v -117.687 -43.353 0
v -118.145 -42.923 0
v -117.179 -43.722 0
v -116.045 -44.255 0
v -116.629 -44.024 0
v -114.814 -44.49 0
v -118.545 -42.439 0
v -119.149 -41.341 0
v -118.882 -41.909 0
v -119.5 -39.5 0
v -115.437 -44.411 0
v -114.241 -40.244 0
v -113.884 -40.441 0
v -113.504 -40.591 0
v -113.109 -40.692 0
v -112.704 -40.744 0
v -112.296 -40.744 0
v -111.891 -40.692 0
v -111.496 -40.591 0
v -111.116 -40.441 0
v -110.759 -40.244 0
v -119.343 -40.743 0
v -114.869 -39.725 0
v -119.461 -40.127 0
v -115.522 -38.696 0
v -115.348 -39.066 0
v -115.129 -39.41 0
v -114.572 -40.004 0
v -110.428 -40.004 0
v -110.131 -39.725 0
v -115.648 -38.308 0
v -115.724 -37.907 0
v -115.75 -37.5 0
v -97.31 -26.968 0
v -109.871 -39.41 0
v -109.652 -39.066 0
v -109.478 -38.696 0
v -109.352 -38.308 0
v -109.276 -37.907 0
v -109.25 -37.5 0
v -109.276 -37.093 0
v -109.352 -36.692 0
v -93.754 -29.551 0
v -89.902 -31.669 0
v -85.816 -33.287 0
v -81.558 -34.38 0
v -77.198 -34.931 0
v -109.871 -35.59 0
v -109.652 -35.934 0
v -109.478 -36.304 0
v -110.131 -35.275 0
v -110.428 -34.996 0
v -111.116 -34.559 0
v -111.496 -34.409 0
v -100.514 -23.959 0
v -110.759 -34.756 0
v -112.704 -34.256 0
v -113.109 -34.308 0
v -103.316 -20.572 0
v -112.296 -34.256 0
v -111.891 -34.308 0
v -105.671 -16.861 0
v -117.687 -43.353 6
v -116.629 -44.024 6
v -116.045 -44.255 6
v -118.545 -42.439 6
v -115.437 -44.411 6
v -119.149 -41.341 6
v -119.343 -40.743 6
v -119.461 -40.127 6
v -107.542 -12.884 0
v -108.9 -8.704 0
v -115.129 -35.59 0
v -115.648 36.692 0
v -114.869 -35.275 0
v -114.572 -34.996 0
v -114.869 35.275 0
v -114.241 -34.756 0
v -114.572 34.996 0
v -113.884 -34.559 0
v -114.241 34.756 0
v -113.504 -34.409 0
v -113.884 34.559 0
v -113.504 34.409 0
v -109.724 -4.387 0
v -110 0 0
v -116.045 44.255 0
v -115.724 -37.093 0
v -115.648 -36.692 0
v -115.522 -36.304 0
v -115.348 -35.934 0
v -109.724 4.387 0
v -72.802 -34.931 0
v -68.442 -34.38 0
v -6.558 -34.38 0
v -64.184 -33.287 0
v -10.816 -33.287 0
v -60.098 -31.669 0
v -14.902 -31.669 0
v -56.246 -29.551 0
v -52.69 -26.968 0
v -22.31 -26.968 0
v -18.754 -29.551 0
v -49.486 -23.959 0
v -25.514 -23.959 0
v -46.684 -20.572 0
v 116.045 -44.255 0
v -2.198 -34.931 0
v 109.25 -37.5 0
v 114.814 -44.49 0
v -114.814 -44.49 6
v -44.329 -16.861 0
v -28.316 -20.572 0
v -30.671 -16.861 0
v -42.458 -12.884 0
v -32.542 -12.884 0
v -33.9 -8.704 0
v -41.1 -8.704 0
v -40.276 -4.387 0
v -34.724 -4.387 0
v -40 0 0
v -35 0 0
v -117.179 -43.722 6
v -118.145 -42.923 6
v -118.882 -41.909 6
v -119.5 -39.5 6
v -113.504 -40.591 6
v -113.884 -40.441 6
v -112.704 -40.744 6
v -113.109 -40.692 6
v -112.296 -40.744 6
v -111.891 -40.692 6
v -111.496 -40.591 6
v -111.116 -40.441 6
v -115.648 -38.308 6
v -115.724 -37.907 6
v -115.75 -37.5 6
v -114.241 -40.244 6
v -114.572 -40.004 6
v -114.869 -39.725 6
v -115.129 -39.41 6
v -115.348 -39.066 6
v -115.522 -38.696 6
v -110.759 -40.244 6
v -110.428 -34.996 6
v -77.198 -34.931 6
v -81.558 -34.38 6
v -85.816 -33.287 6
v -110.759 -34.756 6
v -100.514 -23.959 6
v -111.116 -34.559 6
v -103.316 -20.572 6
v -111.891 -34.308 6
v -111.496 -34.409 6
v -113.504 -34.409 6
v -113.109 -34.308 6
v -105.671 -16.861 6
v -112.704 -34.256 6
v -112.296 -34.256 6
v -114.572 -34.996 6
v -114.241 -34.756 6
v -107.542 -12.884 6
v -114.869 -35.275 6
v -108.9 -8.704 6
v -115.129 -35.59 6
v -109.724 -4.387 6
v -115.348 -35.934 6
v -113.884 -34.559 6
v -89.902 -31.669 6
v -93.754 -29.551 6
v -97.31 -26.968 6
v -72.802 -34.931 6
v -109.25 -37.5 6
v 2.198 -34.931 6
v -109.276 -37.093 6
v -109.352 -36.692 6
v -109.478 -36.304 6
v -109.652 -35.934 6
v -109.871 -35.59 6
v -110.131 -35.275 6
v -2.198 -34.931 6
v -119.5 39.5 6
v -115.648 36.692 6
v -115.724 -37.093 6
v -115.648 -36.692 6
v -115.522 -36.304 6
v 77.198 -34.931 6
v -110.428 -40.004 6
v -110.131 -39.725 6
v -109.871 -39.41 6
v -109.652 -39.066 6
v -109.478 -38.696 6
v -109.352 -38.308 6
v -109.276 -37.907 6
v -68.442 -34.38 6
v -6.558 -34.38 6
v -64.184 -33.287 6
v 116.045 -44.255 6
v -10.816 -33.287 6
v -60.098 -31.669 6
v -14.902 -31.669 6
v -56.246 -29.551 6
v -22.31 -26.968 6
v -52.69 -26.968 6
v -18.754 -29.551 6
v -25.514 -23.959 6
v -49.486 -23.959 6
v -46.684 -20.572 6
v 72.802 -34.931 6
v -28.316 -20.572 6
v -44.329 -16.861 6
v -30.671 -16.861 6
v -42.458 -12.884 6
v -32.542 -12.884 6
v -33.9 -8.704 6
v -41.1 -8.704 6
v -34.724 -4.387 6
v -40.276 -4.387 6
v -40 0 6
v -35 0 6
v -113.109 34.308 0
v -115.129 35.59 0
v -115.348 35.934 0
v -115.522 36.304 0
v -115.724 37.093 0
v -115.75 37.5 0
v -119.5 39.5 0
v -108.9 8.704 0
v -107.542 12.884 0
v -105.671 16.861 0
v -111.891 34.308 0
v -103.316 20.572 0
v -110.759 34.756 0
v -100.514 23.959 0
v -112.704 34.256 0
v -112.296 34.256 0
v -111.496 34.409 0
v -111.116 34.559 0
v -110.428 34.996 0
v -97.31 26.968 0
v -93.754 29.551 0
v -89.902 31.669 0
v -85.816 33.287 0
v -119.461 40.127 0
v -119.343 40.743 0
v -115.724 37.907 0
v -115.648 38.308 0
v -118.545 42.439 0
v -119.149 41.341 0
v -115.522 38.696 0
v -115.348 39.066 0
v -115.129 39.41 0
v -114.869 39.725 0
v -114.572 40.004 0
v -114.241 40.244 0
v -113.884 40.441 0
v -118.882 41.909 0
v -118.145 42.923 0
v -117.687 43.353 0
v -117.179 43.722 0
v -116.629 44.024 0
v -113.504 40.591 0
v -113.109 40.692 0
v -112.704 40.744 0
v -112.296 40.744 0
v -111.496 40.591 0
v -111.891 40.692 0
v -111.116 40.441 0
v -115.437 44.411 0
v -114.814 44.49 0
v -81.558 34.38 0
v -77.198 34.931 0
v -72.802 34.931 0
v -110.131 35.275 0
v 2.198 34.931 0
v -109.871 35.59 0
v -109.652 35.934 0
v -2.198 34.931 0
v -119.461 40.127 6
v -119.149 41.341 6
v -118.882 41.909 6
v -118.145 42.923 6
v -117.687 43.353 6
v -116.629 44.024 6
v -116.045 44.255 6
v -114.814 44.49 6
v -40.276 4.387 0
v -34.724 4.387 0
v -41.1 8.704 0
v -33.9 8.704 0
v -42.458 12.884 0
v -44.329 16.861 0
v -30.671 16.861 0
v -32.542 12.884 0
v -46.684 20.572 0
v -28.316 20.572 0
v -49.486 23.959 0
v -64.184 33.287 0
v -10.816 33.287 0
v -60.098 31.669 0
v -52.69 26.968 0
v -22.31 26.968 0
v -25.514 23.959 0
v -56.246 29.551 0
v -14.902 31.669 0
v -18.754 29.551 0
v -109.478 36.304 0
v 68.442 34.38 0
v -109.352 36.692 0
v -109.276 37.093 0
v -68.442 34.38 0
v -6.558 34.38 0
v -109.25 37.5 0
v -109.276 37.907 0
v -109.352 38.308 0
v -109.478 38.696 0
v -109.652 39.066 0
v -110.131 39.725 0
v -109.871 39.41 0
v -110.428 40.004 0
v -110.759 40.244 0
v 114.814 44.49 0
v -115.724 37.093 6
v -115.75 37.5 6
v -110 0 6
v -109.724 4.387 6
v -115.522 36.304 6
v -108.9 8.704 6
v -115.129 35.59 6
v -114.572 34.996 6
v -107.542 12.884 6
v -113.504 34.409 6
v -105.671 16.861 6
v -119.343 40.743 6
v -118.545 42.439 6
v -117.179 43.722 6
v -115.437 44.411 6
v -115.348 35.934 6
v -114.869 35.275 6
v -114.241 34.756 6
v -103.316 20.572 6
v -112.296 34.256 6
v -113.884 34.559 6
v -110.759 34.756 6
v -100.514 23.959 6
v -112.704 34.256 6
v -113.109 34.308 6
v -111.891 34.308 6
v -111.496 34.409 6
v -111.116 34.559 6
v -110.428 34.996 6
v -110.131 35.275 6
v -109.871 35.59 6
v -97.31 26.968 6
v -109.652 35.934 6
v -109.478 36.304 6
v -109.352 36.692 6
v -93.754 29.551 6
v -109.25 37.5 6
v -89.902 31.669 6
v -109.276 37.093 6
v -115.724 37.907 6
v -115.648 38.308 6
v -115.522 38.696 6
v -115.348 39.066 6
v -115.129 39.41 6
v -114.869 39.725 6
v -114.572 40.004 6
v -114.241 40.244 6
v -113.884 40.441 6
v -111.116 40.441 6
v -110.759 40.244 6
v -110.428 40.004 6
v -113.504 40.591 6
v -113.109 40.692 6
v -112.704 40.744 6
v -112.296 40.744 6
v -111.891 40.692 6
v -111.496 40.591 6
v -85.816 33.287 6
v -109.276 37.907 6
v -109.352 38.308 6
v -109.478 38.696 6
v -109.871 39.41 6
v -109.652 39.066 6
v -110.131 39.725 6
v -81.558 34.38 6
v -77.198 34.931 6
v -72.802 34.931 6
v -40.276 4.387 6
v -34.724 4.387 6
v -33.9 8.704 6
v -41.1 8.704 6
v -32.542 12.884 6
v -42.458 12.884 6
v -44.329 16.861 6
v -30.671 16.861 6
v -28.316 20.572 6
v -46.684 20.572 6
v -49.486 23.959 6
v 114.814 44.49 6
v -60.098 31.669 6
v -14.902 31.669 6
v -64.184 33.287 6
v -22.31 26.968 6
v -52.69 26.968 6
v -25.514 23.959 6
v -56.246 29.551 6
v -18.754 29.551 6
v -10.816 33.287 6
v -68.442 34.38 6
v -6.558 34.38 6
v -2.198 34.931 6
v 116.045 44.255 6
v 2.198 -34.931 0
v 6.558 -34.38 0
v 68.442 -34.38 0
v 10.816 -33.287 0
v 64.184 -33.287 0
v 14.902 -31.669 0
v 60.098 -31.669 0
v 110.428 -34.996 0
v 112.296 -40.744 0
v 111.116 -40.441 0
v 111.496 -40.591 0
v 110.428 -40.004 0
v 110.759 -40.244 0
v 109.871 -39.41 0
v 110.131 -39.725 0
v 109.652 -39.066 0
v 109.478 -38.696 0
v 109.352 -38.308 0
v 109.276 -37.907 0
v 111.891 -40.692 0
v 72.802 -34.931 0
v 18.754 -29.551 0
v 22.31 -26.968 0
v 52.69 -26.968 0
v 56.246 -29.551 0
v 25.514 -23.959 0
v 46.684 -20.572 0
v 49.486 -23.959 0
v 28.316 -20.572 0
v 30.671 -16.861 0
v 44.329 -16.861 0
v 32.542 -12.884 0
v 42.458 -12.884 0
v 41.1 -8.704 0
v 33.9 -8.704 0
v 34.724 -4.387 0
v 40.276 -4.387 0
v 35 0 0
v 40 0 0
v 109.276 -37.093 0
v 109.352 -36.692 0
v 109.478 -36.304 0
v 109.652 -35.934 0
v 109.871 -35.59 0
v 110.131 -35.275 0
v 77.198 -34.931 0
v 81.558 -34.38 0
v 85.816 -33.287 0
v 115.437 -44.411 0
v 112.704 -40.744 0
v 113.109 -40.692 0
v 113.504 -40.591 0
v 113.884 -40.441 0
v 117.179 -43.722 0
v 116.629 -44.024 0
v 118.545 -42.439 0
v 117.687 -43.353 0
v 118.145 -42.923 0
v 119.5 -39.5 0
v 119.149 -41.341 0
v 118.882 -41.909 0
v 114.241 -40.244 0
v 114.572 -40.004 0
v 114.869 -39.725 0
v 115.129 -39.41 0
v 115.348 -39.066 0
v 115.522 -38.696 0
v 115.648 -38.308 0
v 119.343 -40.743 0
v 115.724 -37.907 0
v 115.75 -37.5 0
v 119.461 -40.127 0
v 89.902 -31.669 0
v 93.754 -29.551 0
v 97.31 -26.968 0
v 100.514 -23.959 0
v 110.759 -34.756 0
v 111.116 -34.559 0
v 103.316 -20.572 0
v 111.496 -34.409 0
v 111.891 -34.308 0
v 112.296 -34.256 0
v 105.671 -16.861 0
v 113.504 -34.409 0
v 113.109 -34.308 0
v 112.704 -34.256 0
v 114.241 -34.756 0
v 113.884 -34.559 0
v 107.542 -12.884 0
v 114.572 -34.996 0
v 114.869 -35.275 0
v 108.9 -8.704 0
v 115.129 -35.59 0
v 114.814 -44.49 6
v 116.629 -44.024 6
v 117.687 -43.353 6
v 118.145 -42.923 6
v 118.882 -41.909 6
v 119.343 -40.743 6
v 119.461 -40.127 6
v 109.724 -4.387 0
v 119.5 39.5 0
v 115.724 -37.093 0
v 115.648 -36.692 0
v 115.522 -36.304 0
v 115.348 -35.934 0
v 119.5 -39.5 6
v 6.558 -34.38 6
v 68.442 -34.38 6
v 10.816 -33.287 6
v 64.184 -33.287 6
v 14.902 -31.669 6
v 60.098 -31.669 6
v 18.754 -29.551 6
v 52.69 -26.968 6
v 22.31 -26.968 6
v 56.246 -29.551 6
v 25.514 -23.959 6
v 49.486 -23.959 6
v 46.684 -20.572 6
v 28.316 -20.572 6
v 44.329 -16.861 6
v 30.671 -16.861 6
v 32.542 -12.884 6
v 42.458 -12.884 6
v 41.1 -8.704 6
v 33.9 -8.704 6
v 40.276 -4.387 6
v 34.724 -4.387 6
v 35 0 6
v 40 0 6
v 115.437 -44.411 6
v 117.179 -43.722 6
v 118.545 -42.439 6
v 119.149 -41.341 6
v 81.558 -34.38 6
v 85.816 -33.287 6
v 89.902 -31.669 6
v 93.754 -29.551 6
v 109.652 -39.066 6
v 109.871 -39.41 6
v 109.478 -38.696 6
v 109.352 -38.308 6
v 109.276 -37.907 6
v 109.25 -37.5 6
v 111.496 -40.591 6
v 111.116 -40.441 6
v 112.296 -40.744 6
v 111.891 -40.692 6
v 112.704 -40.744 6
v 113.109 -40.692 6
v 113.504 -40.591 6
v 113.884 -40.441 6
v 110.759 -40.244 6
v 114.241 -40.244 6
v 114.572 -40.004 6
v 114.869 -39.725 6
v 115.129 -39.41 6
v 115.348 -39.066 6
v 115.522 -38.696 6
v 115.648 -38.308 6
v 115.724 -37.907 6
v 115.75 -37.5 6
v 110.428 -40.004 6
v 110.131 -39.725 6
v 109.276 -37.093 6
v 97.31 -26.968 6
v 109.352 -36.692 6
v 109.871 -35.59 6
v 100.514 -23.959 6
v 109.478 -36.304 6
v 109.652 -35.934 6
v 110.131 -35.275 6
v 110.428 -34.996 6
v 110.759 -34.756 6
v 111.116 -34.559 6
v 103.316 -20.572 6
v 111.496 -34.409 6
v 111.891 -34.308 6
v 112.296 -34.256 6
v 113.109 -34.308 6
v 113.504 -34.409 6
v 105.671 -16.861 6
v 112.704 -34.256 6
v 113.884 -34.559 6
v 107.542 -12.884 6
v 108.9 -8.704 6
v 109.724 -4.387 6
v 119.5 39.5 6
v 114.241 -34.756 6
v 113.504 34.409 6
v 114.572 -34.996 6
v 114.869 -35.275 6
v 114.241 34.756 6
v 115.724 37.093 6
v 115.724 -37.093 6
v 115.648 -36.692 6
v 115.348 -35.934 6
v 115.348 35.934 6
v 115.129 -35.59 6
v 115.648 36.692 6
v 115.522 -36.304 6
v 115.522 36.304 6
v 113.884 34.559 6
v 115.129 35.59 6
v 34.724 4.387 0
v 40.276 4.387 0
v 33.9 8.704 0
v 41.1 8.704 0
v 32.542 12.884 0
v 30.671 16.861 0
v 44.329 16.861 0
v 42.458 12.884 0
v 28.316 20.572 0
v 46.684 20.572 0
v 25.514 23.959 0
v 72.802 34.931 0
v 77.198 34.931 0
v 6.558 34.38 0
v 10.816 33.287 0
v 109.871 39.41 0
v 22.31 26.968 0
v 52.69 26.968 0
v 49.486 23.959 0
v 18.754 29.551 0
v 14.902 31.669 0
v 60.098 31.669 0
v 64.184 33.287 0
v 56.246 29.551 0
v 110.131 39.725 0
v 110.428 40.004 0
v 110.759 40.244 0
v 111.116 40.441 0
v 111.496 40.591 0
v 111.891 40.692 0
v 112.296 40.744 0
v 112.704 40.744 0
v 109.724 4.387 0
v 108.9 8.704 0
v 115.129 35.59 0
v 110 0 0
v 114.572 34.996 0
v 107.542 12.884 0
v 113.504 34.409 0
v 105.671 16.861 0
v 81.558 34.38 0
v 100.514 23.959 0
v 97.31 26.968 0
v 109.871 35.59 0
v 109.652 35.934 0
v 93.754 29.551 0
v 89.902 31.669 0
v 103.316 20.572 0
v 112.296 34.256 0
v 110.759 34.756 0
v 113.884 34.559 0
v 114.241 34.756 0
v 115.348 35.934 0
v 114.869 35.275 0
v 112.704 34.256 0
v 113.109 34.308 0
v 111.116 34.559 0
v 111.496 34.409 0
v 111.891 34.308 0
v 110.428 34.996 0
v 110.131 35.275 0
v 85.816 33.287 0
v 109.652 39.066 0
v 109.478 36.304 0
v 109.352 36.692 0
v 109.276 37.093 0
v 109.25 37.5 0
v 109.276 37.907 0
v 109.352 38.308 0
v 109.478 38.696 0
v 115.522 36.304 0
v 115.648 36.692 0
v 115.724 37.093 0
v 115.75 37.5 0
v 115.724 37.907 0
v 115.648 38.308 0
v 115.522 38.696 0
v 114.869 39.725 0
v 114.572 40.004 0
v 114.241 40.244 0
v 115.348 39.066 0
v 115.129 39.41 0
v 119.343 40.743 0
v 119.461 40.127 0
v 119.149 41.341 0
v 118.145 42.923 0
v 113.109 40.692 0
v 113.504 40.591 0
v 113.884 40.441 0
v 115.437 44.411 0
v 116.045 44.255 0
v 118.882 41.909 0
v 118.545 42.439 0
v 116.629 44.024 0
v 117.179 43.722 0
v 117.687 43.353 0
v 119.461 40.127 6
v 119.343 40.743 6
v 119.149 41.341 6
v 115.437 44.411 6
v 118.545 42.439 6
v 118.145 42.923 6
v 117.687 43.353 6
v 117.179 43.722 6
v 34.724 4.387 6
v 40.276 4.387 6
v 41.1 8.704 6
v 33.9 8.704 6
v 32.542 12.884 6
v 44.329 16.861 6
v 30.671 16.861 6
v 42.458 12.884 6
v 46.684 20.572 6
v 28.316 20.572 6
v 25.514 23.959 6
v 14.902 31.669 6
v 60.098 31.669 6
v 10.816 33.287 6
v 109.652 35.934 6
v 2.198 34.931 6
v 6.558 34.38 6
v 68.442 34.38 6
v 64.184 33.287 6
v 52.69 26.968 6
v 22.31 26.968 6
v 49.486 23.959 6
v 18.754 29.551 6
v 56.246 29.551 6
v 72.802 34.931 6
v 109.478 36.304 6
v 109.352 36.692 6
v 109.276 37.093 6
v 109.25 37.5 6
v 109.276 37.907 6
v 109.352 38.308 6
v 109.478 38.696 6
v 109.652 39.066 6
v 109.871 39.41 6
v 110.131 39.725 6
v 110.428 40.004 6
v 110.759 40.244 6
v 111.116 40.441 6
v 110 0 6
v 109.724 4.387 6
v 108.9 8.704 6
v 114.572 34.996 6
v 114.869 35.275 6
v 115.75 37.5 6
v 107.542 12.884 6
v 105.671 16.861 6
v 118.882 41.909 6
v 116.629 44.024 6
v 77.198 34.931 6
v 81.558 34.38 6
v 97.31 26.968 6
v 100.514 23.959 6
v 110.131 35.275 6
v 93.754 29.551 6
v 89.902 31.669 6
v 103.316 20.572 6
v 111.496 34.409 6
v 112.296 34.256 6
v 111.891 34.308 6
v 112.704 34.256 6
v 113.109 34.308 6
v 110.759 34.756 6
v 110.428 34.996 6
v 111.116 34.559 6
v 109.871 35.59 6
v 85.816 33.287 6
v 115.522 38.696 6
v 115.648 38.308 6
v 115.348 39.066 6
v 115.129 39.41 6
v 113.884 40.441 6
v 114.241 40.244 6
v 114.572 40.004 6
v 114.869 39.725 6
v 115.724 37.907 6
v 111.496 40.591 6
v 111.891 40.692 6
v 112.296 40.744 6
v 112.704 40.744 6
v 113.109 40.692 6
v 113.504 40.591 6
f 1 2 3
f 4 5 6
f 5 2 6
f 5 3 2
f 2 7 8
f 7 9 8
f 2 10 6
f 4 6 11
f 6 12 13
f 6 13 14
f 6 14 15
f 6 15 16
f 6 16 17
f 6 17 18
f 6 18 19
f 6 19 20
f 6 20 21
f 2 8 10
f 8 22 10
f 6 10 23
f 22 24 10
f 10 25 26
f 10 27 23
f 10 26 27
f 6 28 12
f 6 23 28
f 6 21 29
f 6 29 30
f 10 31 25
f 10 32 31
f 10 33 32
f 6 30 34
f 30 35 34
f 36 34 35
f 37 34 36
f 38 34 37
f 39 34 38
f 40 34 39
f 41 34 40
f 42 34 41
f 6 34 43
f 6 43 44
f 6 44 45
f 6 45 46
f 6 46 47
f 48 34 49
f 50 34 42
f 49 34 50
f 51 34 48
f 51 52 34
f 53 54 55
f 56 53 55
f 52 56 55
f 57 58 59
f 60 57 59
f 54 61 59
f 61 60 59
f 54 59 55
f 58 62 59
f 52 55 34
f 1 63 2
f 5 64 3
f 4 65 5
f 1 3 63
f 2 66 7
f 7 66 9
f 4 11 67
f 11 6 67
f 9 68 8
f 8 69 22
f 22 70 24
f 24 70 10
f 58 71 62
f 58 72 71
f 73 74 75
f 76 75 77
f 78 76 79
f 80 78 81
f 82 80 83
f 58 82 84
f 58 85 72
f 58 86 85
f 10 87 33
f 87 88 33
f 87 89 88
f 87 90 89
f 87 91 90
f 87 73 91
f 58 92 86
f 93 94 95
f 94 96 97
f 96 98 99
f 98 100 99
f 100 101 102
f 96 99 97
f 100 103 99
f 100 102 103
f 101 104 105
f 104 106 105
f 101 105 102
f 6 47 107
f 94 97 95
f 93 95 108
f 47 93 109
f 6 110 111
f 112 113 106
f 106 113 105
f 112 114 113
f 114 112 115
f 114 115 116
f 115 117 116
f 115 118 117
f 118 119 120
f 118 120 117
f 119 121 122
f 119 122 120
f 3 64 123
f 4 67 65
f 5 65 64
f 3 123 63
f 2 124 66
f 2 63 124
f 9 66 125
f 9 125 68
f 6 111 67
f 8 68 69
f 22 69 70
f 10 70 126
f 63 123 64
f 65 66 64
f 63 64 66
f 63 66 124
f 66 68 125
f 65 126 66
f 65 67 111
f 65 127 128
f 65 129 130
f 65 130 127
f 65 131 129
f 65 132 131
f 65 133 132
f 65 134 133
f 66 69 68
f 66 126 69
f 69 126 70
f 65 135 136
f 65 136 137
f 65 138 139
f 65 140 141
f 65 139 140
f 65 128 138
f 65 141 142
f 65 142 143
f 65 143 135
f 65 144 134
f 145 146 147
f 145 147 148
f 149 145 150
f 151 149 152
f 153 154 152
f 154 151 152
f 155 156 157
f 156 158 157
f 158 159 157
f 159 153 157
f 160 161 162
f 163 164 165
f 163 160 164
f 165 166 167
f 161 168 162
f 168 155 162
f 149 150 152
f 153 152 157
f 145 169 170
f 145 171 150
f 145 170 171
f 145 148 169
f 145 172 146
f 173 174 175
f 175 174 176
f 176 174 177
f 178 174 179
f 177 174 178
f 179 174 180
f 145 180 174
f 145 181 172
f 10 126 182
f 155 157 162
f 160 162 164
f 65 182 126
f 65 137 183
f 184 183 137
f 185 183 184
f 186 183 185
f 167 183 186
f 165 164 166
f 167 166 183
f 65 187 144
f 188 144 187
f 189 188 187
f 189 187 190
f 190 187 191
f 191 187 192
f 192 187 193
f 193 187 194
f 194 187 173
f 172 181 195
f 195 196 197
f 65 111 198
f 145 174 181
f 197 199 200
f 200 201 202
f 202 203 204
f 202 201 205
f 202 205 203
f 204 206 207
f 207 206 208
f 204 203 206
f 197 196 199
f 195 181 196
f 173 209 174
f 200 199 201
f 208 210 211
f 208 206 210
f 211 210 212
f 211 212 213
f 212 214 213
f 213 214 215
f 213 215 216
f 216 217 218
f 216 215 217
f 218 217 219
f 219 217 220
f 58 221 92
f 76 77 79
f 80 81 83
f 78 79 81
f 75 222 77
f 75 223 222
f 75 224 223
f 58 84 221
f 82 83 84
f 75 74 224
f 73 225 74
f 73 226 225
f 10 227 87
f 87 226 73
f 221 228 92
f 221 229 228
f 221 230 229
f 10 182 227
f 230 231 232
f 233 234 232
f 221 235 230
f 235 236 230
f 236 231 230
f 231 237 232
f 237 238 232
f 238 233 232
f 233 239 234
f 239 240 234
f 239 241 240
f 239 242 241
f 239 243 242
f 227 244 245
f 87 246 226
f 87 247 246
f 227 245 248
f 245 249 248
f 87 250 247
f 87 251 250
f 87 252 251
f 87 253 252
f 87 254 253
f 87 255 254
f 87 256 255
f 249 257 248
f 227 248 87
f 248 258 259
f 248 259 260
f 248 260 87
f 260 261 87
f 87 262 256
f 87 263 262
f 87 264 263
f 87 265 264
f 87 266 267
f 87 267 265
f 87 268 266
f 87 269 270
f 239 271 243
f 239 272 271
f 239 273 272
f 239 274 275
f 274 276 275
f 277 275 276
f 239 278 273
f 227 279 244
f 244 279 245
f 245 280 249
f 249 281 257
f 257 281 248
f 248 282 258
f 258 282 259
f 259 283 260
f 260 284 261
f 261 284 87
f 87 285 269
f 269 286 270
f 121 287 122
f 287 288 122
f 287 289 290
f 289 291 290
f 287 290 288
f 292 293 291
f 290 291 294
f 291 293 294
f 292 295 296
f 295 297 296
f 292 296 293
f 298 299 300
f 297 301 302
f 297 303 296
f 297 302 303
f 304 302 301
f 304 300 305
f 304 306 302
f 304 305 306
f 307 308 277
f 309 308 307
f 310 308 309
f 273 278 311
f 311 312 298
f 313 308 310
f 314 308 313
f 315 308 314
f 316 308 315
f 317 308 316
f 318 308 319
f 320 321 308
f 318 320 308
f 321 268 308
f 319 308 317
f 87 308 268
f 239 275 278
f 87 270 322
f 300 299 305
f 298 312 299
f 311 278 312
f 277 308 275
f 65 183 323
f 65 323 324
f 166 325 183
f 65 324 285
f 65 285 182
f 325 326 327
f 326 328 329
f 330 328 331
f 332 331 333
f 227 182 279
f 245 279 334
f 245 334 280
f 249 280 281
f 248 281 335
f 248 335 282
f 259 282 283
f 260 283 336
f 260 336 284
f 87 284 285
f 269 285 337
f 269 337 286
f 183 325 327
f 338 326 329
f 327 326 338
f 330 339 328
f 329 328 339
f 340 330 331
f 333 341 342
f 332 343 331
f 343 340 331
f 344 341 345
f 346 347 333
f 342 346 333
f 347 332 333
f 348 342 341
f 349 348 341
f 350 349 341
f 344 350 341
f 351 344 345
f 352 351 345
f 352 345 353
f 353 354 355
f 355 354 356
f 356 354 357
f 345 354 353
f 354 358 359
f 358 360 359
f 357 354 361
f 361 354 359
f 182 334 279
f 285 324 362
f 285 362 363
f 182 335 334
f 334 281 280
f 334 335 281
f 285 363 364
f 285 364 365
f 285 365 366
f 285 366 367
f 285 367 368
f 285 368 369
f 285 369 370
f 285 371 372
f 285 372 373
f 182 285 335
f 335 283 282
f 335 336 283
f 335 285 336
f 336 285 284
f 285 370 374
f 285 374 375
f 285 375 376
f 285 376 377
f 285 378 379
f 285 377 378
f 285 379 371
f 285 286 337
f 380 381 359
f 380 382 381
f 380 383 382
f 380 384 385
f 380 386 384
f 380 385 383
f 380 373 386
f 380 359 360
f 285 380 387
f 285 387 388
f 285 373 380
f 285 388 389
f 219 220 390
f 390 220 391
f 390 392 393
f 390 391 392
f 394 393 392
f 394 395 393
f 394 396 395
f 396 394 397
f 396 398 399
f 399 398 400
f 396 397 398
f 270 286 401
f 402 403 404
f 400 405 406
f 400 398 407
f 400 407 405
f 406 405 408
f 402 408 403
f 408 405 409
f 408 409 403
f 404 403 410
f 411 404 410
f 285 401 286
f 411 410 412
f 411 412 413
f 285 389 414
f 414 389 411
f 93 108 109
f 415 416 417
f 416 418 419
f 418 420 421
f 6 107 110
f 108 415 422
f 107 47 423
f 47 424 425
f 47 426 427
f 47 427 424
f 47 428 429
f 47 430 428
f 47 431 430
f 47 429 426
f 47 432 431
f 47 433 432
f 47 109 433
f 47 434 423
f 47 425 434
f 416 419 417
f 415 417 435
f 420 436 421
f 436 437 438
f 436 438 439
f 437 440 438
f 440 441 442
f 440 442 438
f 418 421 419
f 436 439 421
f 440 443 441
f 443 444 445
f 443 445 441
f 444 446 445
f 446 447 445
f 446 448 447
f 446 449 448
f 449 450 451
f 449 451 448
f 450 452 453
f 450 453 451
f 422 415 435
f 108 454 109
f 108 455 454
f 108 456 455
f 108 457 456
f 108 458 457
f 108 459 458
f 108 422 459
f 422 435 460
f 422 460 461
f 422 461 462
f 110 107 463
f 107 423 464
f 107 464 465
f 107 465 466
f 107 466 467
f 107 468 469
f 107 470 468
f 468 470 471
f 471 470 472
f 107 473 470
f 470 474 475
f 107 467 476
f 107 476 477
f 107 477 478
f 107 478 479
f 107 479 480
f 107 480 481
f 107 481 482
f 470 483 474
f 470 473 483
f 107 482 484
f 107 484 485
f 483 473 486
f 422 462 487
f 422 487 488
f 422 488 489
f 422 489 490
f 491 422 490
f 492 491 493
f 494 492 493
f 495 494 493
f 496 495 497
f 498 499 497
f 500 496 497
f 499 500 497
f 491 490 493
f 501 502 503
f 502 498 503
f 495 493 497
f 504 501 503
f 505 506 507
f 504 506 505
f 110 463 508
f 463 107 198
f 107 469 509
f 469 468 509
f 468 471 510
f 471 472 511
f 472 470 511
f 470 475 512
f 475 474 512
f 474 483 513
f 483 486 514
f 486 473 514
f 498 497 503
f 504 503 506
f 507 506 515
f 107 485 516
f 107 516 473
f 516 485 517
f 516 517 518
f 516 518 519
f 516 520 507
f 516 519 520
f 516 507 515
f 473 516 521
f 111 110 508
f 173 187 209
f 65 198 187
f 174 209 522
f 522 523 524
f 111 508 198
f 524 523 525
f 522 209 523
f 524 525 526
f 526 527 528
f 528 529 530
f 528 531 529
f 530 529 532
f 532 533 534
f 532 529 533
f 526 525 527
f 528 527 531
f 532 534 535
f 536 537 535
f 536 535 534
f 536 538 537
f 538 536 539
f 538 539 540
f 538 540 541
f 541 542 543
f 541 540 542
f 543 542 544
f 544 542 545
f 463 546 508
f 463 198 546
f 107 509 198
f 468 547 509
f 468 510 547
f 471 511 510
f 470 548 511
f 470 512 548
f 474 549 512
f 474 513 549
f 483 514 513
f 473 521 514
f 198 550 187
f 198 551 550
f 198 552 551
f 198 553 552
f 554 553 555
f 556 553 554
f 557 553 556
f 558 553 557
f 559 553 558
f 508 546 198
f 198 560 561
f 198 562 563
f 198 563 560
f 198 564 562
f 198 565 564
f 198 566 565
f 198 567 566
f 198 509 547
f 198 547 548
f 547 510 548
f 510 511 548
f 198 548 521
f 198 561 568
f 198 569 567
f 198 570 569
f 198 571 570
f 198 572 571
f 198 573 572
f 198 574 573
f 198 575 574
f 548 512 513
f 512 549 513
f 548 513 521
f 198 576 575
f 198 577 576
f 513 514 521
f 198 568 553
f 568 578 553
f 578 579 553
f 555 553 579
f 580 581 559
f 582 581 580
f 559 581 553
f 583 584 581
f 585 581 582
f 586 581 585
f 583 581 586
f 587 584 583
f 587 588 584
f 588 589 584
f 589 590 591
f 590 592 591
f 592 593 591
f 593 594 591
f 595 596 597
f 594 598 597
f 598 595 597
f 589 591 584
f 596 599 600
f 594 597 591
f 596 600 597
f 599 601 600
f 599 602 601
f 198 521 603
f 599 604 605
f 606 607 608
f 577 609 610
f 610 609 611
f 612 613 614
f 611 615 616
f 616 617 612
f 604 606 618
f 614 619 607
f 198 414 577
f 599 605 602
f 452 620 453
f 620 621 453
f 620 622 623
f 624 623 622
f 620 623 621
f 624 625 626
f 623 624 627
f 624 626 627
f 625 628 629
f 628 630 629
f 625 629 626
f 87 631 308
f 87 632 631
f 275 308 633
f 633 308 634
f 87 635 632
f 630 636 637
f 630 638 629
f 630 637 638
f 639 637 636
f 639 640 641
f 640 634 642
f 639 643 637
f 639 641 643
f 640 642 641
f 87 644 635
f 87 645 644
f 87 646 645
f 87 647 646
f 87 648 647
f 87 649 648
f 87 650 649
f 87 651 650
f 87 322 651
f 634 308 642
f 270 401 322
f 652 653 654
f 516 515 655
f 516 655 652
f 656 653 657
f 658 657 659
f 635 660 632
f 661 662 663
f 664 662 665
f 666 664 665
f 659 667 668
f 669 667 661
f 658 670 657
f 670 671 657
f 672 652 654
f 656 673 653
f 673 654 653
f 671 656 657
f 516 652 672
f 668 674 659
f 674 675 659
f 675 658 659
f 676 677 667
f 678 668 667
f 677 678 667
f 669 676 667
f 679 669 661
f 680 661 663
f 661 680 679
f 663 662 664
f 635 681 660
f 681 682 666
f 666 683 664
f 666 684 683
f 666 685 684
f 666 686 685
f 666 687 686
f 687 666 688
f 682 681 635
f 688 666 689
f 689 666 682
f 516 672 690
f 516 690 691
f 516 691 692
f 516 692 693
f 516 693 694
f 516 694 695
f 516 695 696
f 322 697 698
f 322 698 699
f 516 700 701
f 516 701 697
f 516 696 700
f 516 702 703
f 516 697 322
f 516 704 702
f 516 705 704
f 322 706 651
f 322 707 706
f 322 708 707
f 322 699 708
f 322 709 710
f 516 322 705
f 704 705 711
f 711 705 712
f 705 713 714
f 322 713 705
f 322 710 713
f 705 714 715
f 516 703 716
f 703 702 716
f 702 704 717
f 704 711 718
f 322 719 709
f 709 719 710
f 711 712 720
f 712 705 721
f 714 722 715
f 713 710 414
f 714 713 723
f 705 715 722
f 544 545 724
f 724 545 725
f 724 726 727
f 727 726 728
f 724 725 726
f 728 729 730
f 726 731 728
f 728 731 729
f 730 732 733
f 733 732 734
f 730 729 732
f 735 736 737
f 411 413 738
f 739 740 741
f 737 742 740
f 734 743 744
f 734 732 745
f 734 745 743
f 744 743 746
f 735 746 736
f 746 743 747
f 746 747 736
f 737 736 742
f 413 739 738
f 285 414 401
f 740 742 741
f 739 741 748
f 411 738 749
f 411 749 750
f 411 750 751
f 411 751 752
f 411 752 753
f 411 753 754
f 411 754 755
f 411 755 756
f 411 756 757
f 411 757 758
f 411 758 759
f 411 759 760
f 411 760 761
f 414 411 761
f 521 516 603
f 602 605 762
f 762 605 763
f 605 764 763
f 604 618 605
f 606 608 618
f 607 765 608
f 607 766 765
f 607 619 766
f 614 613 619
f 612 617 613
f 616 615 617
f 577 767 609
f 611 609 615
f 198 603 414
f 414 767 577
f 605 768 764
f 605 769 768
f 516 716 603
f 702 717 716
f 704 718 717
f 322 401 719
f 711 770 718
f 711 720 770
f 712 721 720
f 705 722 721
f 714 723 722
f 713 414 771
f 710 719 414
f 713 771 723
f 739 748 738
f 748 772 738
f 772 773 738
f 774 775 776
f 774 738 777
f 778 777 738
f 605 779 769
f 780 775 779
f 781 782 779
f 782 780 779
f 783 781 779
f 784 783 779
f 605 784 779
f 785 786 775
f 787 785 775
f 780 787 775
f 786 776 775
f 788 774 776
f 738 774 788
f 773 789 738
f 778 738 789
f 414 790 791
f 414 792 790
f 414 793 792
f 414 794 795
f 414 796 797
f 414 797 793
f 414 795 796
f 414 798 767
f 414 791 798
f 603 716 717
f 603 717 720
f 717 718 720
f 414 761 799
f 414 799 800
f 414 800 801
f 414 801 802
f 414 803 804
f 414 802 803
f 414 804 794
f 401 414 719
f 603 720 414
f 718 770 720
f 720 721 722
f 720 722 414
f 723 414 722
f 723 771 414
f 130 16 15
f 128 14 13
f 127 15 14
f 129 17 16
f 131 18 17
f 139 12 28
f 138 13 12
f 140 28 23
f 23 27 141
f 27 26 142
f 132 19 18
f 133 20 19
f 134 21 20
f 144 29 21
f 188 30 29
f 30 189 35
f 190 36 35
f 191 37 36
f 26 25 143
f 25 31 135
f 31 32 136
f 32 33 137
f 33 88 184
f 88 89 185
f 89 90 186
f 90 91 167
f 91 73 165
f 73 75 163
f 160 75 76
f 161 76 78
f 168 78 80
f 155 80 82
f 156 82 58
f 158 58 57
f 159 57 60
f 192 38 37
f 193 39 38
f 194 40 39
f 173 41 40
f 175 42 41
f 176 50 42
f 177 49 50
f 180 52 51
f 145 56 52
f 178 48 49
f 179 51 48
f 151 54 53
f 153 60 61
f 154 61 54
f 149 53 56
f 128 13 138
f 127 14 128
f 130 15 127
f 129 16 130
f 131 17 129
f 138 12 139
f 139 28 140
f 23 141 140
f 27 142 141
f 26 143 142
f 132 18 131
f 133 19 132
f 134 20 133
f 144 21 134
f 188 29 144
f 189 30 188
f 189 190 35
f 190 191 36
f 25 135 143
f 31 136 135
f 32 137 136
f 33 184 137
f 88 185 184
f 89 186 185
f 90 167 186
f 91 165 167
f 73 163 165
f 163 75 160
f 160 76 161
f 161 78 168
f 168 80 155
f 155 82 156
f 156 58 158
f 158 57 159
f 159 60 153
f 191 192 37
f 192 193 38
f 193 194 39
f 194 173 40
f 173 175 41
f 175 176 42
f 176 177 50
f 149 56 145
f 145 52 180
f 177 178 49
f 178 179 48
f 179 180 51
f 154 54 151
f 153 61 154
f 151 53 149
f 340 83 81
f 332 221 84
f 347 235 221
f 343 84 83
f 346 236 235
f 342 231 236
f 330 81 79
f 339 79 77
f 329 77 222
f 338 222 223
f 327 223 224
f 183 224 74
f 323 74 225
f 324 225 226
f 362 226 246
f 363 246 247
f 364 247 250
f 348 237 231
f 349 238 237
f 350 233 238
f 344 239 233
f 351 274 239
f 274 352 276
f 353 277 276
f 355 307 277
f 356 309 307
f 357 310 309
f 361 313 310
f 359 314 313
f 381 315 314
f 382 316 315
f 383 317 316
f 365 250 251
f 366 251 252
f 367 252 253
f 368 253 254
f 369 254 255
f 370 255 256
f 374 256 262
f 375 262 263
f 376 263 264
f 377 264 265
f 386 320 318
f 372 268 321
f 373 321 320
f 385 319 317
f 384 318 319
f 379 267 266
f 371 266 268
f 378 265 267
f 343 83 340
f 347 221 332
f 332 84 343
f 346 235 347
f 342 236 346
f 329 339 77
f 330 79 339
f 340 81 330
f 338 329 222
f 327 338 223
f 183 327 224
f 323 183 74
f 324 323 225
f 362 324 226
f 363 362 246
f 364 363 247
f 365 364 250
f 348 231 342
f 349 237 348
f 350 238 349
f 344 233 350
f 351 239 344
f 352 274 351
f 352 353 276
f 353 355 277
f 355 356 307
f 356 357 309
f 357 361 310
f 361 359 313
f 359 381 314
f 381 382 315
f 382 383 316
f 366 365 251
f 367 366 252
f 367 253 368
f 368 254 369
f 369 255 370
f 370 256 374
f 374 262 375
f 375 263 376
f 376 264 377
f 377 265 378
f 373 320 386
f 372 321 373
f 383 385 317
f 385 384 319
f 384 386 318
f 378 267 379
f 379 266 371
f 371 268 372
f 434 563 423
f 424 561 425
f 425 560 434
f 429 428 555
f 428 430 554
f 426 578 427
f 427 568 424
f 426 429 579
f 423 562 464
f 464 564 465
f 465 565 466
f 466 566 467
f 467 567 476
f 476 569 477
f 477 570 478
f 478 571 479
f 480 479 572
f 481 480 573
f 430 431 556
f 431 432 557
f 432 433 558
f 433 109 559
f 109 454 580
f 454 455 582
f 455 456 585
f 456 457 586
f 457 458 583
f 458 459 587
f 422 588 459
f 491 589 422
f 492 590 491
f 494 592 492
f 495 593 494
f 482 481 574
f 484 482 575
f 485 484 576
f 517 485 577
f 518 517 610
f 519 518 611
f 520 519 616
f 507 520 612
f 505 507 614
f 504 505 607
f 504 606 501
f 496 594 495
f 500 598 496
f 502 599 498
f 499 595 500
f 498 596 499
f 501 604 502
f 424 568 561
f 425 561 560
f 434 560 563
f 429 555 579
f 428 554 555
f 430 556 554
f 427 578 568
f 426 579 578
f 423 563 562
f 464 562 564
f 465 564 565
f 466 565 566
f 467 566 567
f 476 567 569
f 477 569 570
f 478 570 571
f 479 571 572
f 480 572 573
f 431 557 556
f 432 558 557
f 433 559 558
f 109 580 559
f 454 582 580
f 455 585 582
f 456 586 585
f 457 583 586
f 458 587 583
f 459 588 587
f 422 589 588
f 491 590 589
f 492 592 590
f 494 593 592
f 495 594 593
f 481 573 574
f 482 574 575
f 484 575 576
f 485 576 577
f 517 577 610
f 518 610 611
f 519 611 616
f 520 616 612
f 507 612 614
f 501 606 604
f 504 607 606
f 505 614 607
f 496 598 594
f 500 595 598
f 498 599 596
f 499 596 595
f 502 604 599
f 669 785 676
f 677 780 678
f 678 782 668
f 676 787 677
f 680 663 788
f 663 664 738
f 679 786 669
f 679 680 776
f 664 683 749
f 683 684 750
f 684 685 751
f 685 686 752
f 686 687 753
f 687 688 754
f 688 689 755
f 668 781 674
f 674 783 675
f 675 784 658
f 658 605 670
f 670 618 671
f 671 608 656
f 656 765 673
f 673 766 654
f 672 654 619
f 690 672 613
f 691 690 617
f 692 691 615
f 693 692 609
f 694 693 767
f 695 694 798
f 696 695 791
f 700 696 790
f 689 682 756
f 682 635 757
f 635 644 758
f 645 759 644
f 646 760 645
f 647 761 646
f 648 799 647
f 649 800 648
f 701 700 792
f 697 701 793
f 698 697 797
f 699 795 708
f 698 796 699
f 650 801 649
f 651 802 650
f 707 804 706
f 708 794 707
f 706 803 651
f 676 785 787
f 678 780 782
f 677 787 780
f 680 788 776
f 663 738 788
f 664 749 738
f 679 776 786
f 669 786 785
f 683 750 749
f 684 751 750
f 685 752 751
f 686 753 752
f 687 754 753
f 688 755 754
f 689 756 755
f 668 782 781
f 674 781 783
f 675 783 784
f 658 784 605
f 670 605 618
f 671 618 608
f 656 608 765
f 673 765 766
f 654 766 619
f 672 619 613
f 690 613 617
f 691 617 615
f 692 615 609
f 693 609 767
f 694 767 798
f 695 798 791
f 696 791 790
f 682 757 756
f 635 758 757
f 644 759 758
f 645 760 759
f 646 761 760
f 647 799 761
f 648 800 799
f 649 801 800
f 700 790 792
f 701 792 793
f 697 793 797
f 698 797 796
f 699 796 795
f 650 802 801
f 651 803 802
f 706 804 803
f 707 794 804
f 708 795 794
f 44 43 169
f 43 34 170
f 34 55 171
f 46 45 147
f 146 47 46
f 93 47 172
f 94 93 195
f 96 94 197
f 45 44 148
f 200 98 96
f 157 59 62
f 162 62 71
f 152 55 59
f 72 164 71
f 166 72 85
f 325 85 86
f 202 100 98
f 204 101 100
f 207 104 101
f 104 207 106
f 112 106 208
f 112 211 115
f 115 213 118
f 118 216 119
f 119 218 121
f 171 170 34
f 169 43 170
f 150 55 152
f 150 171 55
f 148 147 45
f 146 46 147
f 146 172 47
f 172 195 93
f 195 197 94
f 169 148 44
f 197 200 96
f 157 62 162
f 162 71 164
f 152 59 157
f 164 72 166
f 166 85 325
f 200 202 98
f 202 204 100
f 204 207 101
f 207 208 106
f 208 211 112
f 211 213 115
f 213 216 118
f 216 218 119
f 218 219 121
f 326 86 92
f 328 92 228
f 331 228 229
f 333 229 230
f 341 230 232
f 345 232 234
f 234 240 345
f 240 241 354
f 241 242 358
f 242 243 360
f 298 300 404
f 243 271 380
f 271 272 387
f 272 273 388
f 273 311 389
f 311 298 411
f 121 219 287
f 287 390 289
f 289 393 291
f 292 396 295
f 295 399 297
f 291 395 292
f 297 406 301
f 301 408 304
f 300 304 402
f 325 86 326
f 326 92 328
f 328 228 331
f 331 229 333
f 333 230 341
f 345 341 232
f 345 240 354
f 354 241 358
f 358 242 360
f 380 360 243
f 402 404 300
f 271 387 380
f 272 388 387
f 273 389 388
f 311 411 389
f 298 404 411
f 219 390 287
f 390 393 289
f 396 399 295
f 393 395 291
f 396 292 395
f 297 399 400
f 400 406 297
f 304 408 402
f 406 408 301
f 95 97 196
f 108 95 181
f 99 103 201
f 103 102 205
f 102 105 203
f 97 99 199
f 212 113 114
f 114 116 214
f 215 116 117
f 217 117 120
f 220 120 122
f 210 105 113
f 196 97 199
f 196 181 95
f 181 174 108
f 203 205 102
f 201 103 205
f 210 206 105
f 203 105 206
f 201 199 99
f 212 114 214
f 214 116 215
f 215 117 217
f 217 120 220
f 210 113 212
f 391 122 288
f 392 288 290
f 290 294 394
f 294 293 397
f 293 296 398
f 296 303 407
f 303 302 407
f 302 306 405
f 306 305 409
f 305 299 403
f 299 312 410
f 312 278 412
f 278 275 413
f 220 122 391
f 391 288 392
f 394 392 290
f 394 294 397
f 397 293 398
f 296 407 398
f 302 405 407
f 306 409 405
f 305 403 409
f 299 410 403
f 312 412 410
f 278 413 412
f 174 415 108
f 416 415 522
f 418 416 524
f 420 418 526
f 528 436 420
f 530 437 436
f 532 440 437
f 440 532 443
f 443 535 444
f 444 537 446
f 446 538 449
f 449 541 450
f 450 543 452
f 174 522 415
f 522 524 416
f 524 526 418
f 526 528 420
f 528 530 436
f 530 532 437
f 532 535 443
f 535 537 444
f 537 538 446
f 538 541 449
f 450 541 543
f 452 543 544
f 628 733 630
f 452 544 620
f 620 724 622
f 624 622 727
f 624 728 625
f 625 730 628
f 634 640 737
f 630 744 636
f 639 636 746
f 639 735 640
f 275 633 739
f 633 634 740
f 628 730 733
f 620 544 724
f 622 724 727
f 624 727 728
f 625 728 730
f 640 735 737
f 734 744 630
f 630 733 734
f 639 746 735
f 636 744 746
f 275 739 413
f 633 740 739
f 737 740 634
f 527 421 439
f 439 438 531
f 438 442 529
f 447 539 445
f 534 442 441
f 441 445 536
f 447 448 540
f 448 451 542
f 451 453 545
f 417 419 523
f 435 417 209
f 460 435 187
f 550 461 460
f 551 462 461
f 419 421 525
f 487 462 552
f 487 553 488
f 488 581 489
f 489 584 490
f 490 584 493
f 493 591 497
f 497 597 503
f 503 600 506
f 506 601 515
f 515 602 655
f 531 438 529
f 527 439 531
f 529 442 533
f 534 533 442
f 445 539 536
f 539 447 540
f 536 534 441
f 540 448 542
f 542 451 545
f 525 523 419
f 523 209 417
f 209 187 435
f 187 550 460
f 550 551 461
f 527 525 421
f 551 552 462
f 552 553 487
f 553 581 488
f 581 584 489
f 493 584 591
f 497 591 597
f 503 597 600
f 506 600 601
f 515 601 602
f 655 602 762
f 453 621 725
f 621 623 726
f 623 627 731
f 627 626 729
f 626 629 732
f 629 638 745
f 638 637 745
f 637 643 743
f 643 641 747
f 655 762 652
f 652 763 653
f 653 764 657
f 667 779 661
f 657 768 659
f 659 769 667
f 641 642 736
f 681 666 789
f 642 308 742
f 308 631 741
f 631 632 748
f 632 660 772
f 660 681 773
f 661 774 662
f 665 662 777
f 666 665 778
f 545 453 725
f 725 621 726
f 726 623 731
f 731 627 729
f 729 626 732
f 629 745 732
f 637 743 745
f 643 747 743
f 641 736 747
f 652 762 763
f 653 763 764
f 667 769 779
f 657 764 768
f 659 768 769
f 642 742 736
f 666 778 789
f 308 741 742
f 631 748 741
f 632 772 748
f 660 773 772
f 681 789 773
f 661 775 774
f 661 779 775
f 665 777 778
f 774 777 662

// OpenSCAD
$fn = 50;

difference() {
	union() {
		hull() {
			translate(v = [-114.5, 39.5, 0]) {
				cylinder(h = 6, r = 5);
			}
			translate(v = [114.5, 39.5, 0]) {
				cylinder(h = 6, r = 5);
			}
			translate(v = [-114.5, -39.5, 0]) {
				cylinder(h = 6, r = 5);
			}
			translate(v = [114.5, -39.5, 0]) {
				cylinder(h = 6, r = 5);
			}
		}
	}
	union() {
		translate(v = [-112.5, -37.5, -100.0]) {
			cylinder(h = 200, r = 3.25);
		}
		translate(v = [-112.5, 37.5, -100.0]) {
			cylinder(h = 200, r = 3.25);
		}
		translate(v = [112.5, -37.5, -100.0]) {
			cylinder(h = 200, r = 3.25);
		}
		translate(v = [112.5, 37.5, -100.0]) {
			cylinder(h = 200, r = 3.25);
		}
		translate(v = [-112.5, -37.5, -100.0]) {
			cylinder(h = 200, r = 1.8);
		}
		translate(v = [-112.5, 37.5, -100.0]) {
			cylinder(h = 200, r = 1.8);
		}
		translate(v = [112.5, -37.5, -100.0]) {
			cylinder(h = 200, r = 1.8);
		}
		translate(v = [112.5, 37.5, -100.0]) {
			cylinder(h = 200, r = 1.8);
		}
		translate(v = [-75.0, 0, 0.0]) {
			cylinder(h = 6, r = 35.0);
		}
		cylinder(h = 6, r = 35.0);
		translate(v = [75.0, 0, 0.0]) {
			cylinder(h = 6, r = 35.0);
		}
	}
}
